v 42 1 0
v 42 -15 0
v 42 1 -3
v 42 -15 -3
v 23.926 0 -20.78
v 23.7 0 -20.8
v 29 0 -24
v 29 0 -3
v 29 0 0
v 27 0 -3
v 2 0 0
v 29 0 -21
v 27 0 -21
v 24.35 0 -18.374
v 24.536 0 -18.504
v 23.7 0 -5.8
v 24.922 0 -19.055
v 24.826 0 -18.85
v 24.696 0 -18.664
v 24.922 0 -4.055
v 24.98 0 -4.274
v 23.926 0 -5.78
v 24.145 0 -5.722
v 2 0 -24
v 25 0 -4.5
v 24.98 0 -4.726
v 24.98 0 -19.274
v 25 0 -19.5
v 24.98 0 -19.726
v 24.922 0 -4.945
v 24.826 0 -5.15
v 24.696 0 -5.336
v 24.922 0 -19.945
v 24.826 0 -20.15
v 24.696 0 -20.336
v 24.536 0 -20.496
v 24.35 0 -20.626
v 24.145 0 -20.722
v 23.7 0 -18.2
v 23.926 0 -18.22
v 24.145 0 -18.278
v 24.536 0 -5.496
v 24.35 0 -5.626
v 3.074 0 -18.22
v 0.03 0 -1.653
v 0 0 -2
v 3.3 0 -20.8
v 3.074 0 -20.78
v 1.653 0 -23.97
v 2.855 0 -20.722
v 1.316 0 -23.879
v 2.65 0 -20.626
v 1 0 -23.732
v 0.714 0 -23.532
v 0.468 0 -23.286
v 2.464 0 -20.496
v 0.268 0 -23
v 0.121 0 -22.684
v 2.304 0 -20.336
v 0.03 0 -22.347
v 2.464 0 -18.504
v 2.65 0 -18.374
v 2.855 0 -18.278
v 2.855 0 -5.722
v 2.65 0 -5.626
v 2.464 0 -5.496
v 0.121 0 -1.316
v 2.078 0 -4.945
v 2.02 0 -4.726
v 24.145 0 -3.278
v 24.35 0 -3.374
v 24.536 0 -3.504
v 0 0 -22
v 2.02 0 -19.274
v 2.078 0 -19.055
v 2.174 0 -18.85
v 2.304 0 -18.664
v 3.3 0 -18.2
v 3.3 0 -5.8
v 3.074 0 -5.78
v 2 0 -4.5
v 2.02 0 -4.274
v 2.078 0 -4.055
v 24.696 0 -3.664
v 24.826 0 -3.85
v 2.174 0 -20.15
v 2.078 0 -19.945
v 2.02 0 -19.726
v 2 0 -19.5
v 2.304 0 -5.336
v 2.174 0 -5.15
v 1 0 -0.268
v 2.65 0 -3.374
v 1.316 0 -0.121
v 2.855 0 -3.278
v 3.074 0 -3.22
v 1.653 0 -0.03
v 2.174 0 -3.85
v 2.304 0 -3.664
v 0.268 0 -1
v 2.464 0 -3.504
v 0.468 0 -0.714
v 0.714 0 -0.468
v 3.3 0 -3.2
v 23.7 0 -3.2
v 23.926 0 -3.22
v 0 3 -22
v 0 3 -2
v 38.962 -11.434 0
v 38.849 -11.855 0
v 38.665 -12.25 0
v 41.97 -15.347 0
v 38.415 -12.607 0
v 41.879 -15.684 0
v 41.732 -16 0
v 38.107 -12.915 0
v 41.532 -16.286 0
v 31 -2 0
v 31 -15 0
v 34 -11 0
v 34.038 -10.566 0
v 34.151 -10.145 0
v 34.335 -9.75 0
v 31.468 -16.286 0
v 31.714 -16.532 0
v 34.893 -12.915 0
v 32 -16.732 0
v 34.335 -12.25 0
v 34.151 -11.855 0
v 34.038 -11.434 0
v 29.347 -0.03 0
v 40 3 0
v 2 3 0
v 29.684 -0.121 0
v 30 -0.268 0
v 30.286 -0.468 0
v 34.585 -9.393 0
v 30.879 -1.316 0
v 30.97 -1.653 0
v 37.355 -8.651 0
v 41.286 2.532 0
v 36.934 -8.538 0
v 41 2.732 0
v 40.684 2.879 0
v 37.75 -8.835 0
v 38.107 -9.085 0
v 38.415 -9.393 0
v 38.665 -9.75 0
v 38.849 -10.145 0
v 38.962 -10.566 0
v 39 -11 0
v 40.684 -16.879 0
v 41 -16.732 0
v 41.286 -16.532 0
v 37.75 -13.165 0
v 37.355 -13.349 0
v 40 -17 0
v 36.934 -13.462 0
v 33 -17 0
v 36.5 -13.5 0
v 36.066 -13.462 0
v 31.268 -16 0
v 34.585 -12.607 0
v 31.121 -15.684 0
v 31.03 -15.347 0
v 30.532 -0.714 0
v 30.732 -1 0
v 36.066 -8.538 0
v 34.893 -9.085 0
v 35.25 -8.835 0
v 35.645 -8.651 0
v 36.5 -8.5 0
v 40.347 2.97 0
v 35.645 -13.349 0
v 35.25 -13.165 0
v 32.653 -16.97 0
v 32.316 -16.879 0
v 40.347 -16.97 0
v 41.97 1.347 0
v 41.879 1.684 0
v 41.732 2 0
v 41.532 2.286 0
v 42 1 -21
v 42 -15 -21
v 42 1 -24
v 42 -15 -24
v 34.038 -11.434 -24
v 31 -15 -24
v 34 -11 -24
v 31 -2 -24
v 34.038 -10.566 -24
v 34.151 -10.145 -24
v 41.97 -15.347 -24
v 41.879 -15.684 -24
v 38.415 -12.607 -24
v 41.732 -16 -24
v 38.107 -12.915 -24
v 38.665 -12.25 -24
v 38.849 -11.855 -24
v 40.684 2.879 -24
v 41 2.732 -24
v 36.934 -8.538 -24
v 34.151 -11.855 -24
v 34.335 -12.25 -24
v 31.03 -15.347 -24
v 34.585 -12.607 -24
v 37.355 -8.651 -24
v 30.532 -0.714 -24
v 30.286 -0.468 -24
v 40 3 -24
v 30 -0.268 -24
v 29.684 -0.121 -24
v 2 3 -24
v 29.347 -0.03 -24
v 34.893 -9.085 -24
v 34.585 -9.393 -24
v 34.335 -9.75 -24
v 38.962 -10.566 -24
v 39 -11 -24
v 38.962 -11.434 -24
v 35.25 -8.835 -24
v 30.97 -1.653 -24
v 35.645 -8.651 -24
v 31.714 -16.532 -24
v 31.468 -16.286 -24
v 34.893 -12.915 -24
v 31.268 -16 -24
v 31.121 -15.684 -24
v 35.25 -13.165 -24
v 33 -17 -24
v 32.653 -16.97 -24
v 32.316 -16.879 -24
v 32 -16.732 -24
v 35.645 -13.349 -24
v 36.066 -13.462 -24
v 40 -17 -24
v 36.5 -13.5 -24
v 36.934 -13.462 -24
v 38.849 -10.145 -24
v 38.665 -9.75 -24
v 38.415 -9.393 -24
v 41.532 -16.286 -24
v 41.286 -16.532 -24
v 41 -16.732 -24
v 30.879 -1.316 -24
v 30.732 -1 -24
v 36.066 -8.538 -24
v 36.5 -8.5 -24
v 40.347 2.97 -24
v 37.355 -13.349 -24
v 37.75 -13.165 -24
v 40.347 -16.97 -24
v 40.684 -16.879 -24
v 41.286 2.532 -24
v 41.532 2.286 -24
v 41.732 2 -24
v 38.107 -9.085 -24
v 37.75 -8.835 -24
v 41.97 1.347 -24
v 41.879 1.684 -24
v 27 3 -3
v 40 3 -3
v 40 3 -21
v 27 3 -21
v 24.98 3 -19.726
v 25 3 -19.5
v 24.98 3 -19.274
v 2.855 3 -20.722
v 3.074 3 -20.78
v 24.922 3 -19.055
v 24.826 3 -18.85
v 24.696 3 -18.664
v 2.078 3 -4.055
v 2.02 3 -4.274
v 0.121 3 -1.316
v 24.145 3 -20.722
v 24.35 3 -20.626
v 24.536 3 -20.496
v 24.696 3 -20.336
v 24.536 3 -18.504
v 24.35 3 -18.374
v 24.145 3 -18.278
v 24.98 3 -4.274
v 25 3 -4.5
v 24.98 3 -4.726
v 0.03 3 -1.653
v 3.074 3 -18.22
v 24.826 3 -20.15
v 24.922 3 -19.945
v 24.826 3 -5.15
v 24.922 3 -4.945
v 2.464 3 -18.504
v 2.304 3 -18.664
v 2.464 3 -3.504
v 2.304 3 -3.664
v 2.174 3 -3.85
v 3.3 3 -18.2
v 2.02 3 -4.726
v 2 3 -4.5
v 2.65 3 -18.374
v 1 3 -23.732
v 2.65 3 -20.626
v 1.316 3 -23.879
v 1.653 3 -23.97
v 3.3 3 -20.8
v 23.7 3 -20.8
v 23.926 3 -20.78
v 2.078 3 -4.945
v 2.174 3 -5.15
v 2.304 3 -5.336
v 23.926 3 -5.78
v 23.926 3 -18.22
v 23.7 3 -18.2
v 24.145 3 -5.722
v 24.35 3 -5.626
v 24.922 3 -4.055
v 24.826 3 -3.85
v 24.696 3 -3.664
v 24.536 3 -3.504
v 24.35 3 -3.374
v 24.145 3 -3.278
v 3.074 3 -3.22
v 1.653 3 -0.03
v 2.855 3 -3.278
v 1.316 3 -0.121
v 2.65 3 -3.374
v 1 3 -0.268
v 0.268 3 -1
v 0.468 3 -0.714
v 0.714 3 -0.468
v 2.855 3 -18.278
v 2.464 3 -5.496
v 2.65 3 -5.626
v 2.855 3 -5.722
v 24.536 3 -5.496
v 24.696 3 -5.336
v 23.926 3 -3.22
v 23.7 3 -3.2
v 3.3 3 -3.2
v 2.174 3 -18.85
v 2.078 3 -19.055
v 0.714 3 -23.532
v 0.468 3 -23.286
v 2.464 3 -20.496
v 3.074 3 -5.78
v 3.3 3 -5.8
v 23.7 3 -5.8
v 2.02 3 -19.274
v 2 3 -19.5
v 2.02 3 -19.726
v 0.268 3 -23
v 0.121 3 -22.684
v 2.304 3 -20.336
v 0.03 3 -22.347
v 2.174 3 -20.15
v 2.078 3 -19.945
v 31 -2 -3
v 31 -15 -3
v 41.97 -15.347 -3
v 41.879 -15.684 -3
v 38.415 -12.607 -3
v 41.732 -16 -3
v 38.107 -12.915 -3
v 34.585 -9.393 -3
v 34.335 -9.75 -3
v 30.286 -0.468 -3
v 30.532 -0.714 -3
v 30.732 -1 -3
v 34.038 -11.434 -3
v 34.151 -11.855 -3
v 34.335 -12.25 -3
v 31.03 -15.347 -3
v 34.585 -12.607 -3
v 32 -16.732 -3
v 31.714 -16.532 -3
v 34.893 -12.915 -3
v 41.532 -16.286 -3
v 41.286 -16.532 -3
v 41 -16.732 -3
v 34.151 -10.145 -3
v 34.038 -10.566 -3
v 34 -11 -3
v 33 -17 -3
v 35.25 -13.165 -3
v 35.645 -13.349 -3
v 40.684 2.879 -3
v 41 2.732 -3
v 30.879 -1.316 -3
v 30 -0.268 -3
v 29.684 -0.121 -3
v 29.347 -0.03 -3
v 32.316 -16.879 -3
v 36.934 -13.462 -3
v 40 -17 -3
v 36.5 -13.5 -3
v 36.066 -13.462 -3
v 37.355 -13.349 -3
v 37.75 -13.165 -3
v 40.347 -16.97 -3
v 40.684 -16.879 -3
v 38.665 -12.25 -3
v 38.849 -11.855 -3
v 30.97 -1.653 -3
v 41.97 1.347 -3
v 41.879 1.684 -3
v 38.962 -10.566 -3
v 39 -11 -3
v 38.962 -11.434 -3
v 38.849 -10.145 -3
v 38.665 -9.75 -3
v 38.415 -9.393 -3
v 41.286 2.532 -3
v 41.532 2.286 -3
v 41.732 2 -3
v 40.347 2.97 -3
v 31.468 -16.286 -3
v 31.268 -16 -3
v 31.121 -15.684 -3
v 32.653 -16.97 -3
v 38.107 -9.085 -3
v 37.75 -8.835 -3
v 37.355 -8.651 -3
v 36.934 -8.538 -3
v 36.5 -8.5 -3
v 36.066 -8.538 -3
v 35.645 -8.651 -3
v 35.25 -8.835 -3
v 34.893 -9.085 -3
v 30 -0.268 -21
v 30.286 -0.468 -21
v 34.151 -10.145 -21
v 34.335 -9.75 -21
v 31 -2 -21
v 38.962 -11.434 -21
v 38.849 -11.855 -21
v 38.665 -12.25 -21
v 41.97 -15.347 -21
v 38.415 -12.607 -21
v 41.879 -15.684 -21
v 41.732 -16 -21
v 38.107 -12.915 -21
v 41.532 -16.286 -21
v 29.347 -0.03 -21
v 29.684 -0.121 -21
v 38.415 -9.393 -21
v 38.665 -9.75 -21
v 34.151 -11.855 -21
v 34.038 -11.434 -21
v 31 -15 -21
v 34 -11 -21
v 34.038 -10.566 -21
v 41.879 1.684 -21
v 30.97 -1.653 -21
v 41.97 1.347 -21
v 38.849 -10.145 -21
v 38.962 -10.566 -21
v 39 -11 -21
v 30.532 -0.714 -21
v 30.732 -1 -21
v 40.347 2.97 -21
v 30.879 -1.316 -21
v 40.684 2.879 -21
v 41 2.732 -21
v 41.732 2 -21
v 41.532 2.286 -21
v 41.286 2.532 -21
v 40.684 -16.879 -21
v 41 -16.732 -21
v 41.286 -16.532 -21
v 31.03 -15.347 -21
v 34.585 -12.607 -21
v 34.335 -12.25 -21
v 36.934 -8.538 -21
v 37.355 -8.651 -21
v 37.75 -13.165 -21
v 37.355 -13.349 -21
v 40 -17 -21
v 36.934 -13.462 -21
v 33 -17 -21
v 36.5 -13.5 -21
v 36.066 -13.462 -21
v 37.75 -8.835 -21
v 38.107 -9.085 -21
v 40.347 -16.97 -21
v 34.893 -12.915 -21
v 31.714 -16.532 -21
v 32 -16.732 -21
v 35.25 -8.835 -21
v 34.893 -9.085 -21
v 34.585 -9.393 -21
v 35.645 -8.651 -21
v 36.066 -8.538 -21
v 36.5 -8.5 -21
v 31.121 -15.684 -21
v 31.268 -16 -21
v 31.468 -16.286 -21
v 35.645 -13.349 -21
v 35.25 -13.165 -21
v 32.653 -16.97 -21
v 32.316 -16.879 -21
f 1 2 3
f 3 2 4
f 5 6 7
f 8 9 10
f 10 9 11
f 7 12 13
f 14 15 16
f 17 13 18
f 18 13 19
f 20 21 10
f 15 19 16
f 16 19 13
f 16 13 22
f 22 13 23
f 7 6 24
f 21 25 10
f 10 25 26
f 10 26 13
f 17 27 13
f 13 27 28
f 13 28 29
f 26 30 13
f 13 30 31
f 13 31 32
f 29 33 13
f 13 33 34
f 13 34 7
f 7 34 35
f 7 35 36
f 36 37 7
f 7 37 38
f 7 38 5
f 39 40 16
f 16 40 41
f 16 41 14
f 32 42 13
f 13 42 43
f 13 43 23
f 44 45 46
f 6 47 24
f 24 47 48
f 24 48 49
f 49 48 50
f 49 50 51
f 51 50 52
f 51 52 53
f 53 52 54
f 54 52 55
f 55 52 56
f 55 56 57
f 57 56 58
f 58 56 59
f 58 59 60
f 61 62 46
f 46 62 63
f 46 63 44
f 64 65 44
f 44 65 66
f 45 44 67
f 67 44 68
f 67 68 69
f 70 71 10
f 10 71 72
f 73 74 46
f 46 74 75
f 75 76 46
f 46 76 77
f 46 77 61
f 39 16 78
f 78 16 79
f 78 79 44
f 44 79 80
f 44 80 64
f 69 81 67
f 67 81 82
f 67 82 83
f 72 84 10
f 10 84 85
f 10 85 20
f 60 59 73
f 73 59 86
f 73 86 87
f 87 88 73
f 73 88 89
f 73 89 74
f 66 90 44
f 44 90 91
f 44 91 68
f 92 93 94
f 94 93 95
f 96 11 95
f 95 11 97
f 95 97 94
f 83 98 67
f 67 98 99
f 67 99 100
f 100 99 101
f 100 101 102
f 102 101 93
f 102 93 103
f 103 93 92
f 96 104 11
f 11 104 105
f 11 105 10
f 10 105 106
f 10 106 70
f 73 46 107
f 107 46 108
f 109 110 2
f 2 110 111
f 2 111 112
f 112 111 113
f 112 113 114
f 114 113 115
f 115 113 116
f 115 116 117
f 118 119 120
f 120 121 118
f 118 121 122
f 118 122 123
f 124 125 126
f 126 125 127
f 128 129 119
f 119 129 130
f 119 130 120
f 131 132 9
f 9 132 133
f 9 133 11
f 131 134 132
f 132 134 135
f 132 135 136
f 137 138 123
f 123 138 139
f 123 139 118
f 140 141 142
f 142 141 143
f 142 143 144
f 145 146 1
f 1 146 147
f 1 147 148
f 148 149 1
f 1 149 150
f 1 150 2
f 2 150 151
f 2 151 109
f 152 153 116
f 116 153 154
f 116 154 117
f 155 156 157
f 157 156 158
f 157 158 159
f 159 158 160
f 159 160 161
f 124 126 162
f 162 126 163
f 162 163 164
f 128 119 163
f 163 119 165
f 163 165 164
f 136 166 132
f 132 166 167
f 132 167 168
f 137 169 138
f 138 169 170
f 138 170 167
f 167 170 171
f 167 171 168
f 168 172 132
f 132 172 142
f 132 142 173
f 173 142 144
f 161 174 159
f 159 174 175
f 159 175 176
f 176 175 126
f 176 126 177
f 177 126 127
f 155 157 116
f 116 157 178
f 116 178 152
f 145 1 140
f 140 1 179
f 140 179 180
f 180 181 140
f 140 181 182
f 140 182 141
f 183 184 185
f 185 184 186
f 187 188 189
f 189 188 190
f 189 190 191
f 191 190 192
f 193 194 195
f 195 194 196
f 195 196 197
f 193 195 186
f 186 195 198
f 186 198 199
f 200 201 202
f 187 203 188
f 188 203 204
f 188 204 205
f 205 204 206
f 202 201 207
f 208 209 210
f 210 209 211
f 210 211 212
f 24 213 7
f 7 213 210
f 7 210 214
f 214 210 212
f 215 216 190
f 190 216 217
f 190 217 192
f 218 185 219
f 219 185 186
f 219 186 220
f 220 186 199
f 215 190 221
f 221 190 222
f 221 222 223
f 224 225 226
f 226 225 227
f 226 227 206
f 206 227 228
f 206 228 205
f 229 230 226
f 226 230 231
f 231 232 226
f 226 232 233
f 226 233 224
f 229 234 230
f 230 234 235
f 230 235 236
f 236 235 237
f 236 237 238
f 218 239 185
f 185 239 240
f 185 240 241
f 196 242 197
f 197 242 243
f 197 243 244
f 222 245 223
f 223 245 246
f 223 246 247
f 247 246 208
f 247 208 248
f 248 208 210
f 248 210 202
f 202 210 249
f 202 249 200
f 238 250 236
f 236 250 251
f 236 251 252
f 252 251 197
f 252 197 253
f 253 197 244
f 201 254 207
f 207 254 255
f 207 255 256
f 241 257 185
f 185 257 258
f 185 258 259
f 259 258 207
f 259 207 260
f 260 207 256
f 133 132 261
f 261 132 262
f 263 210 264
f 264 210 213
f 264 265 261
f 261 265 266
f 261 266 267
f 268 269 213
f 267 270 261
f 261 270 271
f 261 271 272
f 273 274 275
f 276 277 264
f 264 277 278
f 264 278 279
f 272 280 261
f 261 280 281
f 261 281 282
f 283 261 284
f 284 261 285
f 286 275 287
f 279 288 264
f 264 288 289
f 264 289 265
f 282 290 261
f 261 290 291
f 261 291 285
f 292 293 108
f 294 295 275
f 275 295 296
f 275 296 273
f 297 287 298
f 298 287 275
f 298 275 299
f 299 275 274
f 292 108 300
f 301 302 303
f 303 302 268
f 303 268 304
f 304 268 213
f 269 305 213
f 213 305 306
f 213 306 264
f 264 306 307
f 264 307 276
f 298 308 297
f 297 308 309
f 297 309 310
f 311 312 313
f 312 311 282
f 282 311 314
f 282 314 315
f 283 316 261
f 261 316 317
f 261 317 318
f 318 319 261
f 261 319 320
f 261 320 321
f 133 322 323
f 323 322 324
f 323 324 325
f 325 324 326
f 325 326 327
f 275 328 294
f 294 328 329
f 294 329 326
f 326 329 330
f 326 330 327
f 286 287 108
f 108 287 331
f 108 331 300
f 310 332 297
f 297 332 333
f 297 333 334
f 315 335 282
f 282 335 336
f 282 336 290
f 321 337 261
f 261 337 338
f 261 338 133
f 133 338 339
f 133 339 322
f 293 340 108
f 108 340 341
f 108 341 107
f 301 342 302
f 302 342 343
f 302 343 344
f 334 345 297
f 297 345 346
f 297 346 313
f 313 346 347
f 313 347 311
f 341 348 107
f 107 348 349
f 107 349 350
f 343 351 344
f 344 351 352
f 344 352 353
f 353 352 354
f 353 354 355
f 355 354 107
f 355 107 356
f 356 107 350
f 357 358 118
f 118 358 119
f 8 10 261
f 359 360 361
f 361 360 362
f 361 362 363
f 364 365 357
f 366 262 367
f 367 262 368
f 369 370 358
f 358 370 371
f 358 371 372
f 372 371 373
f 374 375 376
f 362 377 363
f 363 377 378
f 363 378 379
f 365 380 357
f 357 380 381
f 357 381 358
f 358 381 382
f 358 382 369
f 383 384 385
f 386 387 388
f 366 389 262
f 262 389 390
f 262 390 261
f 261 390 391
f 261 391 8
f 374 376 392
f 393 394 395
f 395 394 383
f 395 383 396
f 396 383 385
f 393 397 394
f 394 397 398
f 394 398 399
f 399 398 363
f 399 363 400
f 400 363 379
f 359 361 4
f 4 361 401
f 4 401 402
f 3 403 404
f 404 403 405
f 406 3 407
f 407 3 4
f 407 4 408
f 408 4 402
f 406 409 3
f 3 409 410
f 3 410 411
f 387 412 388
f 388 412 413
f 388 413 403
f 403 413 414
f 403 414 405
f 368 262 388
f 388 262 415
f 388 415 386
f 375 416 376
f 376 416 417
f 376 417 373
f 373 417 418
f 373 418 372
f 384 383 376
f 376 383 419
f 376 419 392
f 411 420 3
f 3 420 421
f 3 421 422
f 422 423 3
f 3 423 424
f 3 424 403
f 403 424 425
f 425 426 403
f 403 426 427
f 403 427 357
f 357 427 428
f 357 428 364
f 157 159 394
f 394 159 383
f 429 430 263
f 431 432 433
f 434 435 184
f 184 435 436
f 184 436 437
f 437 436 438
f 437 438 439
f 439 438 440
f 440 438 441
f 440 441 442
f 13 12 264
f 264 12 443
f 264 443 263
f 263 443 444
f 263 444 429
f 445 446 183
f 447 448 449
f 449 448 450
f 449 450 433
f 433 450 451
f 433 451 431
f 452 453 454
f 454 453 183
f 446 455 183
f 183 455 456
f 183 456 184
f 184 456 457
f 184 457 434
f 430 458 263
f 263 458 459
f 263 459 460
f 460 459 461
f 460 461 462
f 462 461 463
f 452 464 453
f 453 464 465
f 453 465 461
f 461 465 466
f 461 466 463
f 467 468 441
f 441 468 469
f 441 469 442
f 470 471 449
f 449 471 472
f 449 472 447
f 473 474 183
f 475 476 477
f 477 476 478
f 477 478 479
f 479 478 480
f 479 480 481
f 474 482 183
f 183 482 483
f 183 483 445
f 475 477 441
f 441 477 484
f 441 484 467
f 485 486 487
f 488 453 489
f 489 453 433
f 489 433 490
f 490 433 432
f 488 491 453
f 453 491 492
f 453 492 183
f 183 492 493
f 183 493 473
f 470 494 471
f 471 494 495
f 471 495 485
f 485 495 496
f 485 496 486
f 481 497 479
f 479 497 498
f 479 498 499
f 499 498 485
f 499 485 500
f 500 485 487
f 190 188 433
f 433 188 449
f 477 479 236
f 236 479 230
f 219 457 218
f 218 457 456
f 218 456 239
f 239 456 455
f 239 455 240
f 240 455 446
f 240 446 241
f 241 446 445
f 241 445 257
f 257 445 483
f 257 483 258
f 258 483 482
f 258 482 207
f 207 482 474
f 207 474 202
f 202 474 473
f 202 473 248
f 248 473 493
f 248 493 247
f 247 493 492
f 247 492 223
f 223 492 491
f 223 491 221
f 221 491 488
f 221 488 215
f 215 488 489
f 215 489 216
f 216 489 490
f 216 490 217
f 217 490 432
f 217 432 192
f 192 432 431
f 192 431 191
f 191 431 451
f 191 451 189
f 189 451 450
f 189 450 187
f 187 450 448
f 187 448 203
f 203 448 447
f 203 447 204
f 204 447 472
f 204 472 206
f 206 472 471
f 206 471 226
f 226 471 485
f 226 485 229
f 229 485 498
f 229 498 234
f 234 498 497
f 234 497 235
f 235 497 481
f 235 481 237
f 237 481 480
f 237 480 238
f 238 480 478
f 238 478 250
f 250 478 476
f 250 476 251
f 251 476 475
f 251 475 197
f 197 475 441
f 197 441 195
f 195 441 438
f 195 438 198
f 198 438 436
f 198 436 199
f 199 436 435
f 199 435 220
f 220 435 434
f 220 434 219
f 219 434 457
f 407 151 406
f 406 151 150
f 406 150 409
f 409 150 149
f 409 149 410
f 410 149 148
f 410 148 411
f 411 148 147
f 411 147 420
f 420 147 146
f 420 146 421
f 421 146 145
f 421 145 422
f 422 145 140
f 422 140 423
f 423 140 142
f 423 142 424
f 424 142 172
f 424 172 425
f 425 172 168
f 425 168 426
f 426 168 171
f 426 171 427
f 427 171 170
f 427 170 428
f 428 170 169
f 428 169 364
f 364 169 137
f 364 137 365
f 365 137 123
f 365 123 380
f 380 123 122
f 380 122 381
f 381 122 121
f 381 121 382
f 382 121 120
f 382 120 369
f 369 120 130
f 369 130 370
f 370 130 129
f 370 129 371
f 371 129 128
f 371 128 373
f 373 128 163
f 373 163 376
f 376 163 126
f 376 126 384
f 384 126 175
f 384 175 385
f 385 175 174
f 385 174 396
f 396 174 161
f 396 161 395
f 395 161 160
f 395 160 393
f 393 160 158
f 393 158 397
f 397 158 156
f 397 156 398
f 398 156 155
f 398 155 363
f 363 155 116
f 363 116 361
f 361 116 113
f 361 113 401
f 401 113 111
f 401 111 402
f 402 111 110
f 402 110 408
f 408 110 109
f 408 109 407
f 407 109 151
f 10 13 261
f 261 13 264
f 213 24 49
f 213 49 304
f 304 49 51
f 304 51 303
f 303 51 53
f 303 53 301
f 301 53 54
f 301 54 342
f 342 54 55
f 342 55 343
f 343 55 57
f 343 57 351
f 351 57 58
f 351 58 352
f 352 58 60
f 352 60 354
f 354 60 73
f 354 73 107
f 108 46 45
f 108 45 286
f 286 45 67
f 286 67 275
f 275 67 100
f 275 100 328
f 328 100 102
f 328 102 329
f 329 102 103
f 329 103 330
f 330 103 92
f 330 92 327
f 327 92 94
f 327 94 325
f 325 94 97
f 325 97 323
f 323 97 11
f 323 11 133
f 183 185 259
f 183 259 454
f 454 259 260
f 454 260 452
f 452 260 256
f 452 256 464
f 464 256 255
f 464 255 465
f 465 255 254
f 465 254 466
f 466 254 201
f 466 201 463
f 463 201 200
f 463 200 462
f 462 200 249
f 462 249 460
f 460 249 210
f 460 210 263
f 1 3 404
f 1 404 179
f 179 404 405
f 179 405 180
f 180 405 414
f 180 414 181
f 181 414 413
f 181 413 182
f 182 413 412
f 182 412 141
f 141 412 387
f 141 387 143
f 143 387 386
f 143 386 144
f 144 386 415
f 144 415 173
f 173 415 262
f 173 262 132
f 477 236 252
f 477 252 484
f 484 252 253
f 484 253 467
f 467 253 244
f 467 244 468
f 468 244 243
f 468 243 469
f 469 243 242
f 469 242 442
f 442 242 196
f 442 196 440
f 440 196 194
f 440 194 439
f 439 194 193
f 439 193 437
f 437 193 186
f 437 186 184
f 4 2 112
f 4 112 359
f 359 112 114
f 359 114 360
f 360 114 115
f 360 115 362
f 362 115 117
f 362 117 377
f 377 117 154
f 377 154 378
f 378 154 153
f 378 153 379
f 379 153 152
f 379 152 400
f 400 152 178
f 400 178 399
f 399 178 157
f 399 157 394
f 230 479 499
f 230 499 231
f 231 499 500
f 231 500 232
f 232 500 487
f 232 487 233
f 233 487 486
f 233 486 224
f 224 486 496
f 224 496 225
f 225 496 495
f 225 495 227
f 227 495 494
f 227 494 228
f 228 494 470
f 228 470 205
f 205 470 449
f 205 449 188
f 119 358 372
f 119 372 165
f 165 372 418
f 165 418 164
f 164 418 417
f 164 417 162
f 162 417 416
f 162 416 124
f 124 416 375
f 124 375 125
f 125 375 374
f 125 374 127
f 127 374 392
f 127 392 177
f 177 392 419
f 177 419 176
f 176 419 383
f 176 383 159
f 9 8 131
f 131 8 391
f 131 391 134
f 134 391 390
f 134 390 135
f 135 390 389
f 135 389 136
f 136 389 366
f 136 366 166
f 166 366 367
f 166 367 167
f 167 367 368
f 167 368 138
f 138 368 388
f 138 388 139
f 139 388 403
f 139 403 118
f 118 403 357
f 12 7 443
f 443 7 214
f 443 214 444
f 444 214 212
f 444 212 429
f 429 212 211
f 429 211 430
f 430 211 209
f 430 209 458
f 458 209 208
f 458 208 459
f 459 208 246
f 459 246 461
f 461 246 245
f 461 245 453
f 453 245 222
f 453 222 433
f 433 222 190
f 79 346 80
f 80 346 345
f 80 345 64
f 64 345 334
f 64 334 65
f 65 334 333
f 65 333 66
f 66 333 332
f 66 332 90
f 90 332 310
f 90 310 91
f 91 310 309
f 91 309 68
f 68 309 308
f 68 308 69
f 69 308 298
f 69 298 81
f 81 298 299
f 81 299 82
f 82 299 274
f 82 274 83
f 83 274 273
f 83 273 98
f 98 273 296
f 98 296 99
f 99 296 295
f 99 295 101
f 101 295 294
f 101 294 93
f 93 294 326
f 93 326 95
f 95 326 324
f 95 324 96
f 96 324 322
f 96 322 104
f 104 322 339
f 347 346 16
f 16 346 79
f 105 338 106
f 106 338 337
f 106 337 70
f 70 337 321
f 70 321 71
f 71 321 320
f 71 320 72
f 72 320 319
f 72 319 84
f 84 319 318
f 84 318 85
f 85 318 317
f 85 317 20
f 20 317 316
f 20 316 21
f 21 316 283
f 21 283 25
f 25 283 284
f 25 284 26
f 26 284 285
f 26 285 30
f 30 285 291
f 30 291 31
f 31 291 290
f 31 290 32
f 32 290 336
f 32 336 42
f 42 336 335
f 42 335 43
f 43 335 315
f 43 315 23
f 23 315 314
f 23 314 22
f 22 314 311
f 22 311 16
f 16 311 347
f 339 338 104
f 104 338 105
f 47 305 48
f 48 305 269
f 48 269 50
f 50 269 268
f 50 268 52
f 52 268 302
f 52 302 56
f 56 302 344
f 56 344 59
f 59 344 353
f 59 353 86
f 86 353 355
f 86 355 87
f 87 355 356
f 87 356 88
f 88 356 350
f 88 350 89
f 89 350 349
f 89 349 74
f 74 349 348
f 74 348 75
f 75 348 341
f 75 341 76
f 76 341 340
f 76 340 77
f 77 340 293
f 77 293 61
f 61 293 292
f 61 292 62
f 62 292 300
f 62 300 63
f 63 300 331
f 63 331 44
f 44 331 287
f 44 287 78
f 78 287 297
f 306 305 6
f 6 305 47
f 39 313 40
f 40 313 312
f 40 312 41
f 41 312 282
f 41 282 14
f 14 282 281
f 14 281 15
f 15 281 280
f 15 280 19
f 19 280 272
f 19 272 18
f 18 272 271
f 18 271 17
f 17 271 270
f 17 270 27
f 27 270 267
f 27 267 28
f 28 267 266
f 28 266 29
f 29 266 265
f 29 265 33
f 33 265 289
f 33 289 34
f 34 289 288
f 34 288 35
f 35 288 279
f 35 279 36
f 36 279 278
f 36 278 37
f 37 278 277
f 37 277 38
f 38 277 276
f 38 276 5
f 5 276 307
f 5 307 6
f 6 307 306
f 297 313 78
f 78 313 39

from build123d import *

# Parameters (mm, degrees)
SKETCH1_W           = 42
SKETCH1_H           = 24
BOSS_EXTRUDE1_DEPTH = 3
SKETCH2_W           = 11
SKETCH2_H           = 3
BOSS_EXTRUDE2_DEPTH = 17
SKETCH3_R           = 2.5
CUT_EXTRUDE1_DEPTH  = 52.273774973
SKETCH4_W           = 15
SKETCH4_H           = 18
CUT_EXTRUDE2_DEPTH  = 3
FILLET1_R           = 2
FILLET2_R           = 2
FILLET3_R           = 2
CUT_EXTRUDE3_DEPTH  = 53.345009313


with BuildPart() as part:
    # Sketch1 → Boss-Extrude1 (new body)
    with BuildSketch(Plane(origin=(0, 0, 0), x_dir=(1, 0, 0), z_dir=(0, 1, 0))):
        with Locations((21, 12)):
            Rectangle(SKETCH1_W, SKETCH1_H)
    extrude(amount=BOSS_EXTRUDE1_DEPTH)

    # Sketch2 → Boss-Extrude2 (add)
    with BuildSketch(Plane.XZ):
        with Locations((36.5, -1.5)):
            Rectangle(SKETCH2_W, SKETCH2_H)
        with Locations((36.5, -22.5)):
            Rectangle(SKETCH2_W, SKETCH2_H)
    extrude(amount=BOSS_EXTRUDE2_DEPTH)

    # Sketch3 → Cut-Extrude1 (cut, through all)
    with BuildSketch(Plane.XY):
        with Locations((36.5, -11)):
            Circle(SKETCH3_R)
    extrude(amount=-CUT_EXTRUDE1_DEPTH, mode=Mode.SUBTRACT)

    # Sketch4 → Cut-Extrude2 (cut)
    with BuildSketch(Plane(origin=(0, 3, 0), x_dir=(1, 0, 0), z_dir=(0, 1, 0))):
        with Locations((34.5, 12)):
            Rectangle(SKETCH4_W, SKETCH4_H)
    extrude(amount=-CUT_EXTRUDE2_DEPTH, mode=Mode.SUBTRACT)

    # Fillet1
    fillet1_edges = [part.edges().sort_by_distance(p)[0] for p in [
        (0, 1.5, -24),
        (0, 1.5, 0),
    ]]
    fillet(fillet1_edges, radius=FILLET1_R)

    # Fillet2
    fillet2_edges = [part.edges().sort_by_distance(p)[0] for p in [
        (42, 3, -1.5),
        (42, -17, -1.5),
        (31, -17, -1.5),
        (42, -17, -22.5),
        (31, -17, -22.5),
        (42, 3, -22.5),
    ]]
    fillet(fillet2_edges, radius=FILLET2_R)

    # Fillet3
    fillet3_edges = [part.edges().sort_by_distance(p)[0] for p in [
        (31, 0, -1.5),
        (31, 0, -22.5),
    ]]
    fillet(fillet3_edges, radius=FILLET3_R)

    # Sketch6 → Cut-Extrude3 (cut, through all)
    with BuildSketch(Plane(origin=(0, 3, 0), x_dir=(1, 0, 0), z_dir=(0, 1, 0))):
        with BuildLine():
            Line((3.3, 20.8), (23.7, 20.8))
            ThreePointArc((23.7, 20.8), (25, 19.5), (23.7, 18.2))
            Line((23.7, 18.2), (3.3, 18.2))
            ThreePointArc((3.3, 18.2), (2, 19.5), (3.3, 20.8))
        make_face()
        with BuildLine():
            Line((3.3, 5.8), (23.7, 5.8))
            ThreePointArc((23.7, 5.8), (25, 4.5), (23.7, 3.2))
            Line((23.7, 3.2), (3.3, 3.2))
            ThreePointArc((3.3, 3.2), (2, 4.5), (3.3, 5.8))
        make_face()
    extrude(amount=-CUT_EXTRUDE3_DEPTH, mode=Mode.SUBTRACT)


solid = part.part
